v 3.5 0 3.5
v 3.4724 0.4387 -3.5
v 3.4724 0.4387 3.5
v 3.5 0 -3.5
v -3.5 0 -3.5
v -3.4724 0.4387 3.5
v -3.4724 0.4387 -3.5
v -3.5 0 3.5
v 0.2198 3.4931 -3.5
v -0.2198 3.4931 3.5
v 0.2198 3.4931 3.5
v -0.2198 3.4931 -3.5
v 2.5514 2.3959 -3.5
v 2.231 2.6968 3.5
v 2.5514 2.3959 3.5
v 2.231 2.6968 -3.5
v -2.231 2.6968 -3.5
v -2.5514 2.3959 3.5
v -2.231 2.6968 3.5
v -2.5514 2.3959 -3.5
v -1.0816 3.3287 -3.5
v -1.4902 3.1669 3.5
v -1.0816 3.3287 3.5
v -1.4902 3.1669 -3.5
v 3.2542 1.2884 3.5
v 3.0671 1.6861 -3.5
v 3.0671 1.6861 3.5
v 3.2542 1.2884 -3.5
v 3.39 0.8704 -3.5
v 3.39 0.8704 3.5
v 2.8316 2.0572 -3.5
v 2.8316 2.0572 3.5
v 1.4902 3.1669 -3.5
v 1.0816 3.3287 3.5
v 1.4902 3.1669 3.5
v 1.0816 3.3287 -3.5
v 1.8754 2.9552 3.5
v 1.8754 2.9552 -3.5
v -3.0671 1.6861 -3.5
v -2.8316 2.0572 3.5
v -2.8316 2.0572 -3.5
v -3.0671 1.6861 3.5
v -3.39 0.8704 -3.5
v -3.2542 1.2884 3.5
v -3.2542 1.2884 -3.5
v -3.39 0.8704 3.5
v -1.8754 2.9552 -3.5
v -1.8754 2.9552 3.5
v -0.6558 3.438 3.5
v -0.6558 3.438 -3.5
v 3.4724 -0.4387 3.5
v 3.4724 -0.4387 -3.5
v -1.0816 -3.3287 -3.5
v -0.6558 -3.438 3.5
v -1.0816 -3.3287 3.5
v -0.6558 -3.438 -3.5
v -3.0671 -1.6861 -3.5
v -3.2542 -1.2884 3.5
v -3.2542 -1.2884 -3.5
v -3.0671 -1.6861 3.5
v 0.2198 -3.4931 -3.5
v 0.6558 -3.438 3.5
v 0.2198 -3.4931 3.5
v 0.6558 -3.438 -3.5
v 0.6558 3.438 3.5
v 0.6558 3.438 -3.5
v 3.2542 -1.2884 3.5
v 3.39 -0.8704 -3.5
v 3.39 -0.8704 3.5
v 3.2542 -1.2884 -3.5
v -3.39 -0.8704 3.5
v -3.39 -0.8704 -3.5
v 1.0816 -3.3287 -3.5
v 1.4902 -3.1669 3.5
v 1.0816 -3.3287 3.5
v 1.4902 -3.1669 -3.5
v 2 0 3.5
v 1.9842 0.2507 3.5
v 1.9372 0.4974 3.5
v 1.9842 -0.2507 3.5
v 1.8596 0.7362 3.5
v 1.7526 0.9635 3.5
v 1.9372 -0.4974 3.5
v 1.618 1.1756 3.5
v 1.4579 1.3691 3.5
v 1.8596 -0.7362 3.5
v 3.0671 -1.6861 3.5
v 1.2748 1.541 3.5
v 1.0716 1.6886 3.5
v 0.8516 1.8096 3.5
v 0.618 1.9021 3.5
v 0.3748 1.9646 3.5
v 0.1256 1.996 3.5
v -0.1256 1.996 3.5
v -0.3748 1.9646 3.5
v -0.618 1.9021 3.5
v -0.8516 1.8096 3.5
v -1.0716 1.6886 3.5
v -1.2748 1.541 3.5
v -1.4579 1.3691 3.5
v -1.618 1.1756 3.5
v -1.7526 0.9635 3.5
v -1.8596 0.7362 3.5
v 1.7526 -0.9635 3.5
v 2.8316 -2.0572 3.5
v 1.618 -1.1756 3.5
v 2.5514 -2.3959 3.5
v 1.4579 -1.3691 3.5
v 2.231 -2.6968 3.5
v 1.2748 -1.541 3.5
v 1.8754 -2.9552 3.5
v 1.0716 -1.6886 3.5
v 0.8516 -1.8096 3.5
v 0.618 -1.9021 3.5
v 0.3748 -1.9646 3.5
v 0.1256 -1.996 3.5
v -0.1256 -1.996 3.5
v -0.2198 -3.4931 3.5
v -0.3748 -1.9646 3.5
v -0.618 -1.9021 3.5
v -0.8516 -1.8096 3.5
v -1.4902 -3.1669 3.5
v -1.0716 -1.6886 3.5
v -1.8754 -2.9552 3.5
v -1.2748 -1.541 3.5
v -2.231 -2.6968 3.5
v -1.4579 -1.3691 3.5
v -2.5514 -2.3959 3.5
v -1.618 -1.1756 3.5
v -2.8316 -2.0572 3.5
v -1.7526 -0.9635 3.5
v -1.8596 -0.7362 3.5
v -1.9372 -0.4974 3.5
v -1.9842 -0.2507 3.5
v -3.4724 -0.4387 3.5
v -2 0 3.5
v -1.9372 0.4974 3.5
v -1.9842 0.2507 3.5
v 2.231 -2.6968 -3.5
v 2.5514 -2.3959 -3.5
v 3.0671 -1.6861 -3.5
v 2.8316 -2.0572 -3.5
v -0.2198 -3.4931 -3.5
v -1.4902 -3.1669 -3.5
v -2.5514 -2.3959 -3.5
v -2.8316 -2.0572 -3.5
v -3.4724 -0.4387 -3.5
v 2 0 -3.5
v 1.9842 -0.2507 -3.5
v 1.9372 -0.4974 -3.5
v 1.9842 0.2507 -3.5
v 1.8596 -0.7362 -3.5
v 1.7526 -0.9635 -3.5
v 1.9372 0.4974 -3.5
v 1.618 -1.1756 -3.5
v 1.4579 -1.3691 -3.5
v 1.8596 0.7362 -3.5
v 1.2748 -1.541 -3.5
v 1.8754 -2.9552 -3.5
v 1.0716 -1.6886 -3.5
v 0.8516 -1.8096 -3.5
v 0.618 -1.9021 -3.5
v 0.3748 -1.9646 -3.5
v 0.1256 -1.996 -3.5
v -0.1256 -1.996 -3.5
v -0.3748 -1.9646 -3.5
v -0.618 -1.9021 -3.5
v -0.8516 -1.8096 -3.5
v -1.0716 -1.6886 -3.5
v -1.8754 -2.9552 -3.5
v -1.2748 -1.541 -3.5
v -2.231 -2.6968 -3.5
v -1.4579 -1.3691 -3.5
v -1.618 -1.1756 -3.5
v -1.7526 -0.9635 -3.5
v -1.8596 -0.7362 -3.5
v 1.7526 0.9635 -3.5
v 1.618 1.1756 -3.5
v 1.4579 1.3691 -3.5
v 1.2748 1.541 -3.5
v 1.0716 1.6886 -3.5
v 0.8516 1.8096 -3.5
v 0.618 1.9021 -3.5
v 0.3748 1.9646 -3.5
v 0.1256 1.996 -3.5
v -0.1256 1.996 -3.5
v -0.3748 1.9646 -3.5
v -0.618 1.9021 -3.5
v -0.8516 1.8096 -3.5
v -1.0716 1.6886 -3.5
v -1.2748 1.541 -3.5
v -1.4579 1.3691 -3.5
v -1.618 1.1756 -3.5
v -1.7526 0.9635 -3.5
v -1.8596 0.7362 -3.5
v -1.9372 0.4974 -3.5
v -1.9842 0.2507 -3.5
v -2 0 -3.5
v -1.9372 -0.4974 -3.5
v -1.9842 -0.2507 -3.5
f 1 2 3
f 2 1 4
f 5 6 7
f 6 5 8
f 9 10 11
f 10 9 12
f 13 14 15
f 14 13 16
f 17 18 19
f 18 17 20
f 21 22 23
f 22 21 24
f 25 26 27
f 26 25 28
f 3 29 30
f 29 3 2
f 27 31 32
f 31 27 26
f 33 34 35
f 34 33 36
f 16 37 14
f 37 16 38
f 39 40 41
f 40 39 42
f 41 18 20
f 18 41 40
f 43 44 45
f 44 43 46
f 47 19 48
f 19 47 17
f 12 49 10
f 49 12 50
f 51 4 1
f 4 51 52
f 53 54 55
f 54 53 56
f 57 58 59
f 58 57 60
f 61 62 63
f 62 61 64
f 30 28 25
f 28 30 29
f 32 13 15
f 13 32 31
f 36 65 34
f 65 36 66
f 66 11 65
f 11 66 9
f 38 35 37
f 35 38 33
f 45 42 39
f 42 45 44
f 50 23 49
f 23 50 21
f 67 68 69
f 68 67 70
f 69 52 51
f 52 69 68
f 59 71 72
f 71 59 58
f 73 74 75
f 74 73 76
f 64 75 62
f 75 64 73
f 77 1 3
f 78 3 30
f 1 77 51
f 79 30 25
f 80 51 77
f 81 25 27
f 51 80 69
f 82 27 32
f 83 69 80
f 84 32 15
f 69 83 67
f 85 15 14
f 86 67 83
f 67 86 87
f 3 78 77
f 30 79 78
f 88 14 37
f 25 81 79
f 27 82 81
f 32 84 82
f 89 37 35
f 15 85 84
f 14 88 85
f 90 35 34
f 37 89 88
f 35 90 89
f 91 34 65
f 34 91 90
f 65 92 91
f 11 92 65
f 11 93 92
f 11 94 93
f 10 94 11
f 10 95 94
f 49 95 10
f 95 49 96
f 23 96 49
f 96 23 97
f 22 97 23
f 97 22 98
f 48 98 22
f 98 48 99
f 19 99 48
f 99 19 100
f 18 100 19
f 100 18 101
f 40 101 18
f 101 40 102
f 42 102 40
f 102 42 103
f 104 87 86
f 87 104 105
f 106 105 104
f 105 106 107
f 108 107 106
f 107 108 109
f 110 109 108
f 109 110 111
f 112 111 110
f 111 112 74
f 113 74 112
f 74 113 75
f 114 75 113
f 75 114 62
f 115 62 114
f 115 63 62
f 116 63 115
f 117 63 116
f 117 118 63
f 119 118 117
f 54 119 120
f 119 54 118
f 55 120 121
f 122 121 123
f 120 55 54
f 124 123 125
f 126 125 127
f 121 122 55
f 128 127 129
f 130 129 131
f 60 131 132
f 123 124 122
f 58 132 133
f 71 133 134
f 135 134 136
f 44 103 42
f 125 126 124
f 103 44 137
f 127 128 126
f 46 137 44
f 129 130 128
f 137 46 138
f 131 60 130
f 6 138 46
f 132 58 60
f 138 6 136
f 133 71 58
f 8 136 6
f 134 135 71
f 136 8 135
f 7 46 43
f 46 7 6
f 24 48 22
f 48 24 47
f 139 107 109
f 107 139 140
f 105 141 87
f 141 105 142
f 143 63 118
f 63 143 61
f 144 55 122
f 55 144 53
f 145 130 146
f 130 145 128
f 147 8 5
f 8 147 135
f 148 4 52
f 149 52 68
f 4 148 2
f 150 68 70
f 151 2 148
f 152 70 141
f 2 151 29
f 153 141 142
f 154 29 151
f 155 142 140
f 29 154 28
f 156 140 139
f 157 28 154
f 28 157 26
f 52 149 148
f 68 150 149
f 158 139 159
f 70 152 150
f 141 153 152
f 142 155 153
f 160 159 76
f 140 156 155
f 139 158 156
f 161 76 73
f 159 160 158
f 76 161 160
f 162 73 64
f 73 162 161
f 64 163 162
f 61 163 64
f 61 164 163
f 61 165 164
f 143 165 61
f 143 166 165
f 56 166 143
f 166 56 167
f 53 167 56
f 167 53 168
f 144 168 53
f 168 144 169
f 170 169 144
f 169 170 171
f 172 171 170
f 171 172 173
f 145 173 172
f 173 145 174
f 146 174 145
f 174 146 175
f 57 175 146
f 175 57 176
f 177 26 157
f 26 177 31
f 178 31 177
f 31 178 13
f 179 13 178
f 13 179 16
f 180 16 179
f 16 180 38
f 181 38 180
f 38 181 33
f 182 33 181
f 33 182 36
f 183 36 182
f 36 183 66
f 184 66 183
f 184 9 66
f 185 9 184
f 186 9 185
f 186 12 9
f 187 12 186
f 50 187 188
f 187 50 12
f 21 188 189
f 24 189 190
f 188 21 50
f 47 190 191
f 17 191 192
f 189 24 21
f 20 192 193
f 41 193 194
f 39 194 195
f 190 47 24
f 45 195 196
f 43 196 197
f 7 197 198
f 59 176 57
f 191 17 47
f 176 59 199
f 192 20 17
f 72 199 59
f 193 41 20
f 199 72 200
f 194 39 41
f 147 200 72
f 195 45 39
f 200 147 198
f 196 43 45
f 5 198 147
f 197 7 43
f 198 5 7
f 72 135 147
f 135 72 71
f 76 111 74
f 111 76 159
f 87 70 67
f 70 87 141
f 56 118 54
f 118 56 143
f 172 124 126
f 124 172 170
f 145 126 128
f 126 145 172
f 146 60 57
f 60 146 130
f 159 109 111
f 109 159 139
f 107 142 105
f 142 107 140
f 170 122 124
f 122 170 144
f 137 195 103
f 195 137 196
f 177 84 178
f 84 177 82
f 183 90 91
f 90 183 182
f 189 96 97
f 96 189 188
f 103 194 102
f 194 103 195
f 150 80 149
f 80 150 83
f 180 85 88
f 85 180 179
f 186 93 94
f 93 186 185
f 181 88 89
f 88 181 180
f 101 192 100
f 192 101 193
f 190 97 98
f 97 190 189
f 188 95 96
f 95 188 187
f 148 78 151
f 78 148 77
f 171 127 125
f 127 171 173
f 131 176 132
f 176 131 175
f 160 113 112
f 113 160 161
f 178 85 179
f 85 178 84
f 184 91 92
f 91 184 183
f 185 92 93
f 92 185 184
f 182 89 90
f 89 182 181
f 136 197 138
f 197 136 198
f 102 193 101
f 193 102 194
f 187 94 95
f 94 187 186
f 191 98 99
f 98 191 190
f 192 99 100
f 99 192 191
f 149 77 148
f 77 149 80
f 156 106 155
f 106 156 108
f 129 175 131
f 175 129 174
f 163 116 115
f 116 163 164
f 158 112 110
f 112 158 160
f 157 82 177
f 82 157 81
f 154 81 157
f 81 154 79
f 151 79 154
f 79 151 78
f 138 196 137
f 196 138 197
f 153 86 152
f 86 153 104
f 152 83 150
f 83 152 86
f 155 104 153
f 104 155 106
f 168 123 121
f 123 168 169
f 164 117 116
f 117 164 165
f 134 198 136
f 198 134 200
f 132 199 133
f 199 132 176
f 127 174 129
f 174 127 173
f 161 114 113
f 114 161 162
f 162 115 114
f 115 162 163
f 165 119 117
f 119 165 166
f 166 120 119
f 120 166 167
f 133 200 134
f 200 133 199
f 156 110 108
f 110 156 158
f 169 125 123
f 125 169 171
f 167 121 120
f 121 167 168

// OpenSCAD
$fn = 50;


difference() {
	union() {
		translate(v = [0, 0, -3.5000000000]) {
			cylinder(h = 7, r = 3.5000000000);
		}
	}
	union() {
		translate(v = [0, 0, -100.0000000000]) {
			cylinder(h = 200, r = 2.0000000000);
		}
	}
}
